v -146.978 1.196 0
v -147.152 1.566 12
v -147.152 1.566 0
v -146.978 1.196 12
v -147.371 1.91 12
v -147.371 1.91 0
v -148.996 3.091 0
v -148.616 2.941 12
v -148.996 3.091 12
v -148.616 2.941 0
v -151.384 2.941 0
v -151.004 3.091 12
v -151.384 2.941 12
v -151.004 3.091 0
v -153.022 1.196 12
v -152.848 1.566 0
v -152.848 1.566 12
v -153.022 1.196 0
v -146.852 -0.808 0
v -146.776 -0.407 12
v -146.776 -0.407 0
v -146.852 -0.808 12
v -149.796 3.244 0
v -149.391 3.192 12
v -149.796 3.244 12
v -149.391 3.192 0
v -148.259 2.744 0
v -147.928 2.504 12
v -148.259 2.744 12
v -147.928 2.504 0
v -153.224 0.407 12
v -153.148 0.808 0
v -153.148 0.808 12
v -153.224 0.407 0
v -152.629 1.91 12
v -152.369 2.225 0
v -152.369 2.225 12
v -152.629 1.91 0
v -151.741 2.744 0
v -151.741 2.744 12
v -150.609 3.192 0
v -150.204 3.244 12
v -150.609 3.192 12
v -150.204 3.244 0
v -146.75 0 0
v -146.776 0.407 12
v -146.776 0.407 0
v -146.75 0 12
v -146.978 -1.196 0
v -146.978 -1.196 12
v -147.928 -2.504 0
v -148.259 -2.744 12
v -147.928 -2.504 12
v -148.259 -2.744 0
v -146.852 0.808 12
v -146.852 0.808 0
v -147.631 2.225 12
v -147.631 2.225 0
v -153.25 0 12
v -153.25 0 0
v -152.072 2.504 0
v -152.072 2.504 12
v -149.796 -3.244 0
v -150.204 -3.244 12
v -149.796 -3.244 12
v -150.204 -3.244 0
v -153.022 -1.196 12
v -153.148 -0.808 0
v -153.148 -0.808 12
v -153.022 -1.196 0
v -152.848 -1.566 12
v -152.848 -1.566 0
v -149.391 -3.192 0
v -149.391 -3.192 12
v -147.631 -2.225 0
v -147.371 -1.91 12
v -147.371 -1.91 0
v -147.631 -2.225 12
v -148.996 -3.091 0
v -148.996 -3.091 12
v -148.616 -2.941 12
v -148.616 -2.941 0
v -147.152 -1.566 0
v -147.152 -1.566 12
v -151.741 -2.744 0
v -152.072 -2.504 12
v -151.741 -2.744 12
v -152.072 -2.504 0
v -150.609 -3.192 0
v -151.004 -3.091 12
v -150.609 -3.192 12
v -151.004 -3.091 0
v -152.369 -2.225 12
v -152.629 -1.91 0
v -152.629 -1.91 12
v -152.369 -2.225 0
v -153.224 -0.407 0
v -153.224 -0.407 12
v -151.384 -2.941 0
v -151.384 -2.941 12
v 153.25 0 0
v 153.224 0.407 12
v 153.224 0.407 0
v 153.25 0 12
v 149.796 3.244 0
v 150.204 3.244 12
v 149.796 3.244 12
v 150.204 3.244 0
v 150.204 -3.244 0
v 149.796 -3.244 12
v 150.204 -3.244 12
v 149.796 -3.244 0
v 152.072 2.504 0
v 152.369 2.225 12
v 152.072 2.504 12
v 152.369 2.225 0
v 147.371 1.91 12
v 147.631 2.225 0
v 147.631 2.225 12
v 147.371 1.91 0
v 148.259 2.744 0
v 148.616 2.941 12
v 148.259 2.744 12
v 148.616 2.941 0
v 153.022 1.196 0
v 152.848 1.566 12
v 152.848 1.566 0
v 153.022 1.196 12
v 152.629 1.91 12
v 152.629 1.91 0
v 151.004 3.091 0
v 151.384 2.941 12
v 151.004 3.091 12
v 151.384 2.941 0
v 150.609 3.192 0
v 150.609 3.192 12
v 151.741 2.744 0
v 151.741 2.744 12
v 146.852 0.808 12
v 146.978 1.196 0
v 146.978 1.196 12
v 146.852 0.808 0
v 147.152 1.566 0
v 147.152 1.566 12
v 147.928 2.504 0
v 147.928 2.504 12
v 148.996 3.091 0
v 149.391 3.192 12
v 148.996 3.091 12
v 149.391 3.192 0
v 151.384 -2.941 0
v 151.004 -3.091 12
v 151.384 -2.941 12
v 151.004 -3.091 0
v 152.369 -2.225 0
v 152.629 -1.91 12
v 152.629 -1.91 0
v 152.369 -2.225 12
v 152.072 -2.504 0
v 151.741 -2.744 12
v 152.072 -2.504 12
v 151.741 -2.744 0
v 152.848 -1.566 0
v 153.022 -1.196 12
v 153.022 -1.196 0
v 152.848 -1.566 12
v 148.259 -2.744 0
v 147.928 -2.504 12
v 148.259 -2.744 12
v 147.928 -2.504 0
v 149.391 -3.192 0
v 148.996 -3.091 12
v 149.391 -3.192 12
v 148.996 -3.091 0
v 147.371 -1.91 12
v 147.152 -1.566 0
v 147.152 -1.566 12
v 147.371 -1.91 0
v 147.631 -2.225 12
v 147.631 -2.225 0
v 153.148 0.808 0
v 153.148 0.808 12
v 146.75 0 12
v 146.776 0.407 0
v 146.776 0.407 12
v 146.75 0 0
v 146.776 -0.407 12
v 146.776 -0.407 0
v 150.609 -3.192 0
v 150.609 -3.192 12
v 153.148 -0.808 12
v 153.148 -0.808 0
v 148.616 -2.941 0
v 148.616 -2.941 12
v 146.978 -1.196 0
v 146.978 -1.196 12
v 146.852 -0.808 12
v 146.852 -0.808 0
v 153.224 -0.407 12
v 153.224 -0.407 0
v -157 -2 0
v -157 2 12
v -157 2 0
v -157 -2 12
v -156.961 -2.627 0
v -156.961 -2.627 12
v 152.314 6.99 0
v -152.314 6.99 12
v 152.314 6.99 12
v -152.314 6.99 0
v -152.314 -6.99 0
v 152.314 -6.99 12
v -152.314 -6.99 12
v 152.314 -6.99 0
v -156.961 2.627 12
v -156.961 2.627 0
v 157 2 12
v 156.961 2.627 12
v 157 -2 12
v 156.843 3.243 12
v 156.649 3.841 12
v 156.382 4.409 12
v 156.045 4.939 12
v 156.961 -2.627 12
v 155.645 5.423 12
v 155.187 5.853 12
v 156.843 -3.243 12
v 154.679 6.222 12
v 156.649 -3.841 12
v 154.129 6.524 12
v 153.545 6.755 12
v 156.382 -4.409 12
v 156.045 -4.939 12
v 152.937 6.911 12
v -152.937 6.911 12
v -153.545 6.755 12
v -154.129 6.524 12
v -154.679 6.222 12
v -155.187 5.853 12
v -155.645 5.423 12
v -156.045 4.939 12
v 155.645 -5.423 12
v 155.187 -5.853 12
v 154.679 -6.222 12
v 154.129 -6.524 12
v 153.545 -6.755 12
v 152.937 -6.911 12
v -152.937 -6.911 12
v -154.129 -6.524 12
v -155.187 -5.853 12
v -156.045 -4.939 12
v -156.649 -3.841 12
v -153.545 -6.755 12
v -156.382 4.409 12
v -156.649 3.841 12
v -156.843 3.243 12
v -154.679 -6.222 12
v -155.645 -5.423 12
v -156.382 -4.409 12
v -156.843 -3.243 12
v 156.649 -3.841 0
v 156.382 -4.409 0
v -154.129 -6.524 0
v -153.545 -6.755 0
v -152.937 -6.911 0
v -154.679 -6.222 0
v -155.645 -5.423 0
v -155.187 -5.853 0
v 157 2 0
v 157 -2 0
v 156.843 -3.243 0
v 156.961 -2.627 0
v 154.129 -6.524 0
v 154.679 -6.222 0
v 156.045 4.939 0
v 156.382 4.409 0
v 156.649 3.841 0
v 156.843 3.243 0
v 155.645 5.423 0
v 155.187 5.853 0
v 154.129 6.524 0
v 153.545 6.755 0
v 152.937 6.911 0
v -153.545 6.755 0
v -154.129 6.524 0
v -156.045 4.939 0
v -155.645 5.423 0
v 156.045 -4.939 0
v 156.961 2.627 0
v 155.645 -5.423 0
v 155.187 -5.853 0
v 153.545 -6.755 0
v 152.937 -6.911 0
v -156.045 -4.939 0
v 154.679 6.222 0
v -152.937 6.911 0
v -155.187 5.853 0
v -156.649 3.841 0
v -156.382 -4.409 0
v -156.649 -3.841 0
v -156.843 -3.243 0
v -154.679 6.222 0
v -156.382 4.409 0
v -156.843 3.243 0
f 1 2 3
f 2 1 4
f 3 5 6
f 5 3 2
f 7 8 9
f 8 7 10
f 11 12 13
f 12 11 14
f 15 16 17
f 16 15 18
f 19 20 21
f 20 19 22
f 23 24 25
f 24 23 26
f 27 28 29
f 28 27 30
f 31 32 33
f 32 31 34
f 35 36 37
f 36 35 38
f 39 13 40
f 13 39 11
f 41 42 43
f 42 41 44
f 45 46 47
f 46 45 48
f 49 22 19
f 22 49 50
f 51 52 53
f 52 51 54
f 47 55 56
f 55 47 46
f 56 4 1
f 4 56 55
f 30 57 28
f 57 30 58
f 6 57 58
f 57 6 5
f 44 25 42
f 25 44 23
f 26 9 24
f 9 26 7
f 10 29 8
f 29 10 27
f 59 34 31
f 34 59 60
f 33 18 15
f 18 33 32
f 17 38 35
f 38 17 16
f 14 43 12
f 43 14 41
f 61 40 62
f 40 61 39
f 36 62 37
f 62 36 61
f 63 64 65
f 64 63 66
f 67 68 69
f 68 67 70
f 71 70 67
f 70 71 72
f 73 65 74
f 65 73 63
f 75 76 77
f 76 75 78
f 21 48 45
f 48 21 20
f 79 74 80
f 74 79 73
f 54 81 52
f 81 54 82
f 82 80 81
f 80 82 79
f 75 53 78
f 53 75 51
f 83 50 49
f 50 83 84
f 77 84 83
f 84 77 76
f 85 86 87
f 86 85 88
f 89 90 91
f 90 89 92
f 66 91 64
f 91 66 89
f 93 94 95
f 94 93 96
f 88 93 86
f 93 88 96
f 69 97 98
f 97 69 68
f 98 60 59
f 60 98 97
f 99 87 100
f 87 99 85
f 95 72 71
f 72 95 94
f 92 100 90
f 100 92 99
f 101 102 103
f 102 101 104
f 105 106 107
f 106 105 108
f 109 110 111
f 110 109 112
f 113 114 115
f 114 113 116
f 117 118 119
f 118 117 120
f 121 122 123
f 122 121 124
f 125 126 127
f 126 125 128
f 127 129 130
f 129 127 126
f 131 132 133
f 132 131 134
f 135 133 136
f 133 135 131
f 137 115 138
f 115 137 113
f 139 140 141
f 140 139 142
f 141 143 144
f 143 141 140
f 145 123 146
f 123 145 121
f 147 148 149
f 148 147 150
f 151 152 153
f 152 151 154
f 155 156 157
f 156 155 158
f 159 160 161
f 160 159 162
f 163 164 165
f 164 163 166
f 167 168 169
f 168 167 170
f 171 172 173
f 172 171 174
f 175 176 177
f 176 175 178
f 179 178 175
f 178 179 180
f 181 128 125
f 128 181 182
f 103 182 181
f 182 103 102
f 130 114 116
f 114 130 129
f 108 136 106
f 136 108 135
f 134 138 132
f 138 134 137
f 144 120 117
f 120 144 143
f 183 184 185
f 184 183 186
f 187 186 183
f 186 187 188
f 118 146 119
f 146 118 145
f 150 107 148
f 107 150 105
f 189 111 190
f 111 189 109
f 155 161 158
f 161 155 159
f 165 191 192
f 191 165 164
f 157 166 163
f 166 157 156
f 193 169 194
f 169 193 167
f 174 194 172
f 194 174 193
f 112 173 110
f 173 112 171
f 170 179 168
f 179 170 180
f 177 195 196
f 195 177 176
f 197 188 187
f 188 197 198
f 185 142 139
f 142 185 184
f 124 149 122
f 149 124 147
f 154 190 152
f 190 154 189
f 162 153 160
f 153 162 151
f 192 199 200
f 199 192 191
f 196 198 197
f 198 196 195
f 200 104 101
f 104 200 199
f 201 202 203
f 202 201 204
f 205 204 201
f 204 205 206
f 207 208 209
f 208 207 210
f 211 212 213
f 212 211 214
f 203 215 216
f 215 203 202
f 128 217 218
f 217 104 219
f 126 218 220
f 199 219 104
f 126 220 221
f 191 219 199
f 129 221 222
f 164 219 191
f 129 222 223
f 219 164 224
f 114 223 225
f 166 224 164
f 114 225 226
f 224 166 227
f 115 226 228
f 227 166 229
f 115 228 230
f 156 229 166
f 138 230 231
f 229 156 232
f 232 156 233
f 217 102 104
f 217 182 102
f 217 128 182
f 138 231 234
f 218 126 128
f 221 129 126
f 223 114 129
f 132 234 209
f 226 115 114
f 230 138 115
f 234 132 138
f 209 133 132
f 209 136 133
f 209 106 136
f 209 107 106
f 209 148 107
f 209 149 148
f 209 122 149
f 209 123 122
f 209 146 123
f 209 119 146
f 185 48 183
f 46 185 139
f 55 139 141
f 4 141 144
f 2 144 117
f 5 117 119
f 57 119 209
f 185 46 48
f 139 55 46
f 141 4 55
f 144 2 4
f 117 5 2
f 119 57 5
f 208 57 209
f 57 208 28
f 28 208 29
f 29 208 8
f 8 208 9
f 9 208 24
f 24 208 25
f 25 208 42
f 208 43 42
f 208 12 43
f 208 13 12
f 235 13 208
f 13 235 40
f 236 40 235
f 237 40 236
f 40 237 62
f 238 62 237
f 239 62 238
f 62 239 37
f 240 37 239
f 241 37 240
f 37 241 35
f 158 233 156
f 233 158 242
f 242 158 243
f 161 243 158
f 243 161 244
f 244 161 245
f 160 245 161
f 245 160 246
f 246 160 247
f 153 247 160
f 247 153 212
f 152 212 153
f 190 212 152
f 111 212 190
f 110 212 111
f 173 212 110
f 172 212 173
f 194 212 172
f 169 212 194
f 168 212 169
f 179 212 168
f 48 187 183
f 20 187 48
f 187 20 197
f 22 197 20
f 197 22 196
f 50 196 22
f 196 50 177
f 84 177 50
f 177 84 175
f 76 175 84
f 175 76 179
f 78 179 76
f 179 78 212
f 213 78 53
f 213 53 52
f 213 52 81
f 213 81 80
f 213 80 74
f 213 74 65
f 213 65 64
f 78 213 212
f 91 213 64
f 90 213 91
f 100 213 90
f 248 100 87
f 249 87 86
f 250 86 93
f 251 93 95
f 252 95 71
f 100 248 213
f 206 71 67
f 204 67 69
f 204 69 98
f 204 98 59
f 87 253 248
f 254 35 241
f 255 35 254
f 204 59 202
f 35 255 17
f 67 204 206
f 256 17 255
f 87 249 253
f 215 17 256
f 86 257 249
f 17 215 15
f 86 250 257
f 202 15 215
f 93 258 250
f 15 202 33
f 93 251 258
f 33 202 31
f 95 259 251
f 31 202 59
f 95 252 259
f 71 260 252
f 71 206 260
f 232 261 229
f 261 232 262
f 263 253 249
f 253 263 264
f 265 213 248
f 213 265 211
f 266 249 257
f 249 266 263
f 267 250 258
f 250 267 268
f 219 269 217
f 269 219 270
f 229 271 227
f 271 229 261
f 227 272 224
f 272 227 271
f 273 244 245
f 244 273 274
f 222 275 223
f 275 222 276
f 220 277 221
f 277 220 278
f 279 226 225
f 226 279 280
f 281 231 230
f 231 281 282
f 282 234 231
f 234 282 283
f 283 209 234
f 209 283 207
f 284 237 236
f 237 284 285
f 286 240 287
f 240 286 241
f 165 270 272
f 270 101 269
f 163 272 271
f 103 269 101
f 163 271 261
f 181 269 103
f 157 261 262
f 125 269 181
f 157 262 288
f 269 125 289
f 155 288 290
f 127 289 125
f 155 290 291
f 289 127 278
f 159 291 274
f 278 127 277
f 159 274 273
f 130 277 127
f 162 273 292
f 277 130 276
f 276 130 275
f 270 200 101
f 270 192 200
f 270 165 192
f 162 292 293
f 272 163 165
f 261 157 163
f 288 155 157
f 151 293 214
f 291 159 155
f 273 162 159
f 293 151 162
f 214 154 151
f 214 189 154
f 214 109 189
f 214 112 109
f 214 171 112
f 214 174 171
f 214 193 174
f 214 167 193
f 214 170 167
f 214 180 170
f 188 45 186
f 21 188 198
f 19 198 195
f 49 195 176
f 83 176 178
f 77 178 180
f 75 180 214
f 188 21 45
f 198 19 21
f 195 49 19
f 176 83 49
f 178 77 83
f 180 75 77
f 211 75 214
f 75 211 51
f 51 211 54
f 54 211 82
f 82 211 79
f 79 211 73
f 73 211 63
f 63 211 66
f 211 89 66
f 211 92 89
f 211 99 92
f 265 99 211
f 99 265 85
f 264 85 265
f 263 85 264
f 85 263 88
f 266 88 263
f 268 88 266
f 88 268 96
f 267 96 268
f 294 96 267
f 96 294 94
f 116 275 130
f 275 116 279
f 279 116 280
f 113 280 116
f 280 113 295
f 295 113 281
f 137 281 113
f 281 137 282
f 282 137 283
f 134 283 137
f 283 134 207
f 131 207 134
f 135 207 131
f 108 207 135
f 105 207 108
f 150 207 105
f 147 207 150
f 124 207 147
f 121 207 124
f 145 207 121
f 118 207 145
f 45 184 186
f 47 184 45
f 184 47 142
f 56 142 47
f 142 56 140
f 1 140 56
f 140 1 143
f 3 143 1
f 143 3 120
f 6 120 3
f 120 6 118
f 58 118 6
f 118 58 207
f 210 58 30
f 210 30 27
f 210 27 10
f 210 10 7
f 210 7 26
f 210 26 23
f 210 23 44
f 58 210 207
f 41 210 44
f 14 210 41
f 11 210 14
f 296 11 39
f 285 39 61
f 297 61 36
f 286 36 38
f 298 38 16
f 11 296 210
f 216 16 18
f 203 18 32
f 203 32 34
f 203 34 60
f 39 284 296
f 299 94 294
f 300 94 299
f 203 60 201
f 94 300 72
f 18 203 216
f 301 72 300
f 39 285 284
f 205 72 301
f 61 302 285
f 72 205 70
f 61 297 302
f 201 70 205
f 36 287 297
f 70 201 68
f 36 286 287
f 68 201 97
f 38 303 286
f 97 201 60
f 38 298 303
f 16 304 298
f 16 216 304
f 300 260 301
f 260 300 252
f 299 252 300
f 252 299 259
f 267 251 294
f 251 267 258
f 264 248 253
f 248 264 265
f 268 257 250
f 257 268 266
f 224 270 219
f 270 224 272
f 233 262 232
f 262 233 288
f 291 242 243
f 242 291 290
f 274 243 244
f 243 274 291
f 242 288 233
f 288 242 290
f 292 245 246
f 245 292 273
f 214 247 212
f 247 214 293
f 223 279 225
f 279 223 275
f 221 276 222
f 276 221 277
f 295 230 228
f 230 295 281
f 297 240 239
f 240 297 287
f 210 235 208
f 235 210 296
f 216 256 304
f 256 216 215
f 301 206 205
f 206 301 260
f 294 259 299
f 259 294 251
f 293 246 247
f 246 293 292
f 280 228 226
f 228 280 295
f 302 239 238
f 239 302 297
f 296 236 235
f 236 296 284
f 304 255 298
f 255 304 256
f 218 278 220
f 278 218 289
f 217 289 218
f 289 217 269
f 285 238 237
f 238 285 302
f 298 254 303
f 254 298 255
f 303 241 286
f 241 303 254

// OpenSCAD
$fn = 50;


difference() {
	union() {
		hull() {
			translate(v = [-152.0000000000, 2.0000000000, 0]) {
				cylinder(h = 12, r = 5);
			}
			translate(v = [152.0000000000, 2.0000000000, 0]) {
				cylinder(h = 12, r = 5);
			}
			translate(v = [-152.0000000000, -2.0000000000, 0]) {
				cylinder(h = 12, r = 5);
			}
			translate(v = [152.0000000000, -2.0000000000, 0]) {
				cylinder(h = 12, r = 5);
			}
		}
	}
	union() {
		translate(v = [-150.0000000000, 0.0000000000, 0]) {
			cylinder(h = 12, r = 3.2500000000);
		}
		translate(v = [150.0000000000, 0.0000000000, 0]) {
			cylinder(h = 12, r = 3.2500000000);
		}
		translate(v = [-150.0000000000, 0.0000000000, 0]) {
			cylinder(h = 12, r = 1.8000000000);
		}
		translate(v = [150.0000000000, 0.0000000000, 0]) {
			cylinder(h = 12, r = 1.8000000000);
		}
		translate(v = [-150.0000000000, 0.0000000000, 0]) {
			cylinder(h = 12, r = 1.8000000000);
		}
		translate(v = [150.0000000000, 0.0000000000, 0]) {
			cylinder(h = 12, r = 1.8000000000);
		}
		translate(v = [-150.0000000000, 0.0000000000, 0]) {
			cylinder(h = 12, r = 1.8000000000);
		}
		translate(v = [150.0000000000, 0.0000000000, 0]) {
			cylinder(h = 12, r = 1.8000000000);
		}
	}
}
